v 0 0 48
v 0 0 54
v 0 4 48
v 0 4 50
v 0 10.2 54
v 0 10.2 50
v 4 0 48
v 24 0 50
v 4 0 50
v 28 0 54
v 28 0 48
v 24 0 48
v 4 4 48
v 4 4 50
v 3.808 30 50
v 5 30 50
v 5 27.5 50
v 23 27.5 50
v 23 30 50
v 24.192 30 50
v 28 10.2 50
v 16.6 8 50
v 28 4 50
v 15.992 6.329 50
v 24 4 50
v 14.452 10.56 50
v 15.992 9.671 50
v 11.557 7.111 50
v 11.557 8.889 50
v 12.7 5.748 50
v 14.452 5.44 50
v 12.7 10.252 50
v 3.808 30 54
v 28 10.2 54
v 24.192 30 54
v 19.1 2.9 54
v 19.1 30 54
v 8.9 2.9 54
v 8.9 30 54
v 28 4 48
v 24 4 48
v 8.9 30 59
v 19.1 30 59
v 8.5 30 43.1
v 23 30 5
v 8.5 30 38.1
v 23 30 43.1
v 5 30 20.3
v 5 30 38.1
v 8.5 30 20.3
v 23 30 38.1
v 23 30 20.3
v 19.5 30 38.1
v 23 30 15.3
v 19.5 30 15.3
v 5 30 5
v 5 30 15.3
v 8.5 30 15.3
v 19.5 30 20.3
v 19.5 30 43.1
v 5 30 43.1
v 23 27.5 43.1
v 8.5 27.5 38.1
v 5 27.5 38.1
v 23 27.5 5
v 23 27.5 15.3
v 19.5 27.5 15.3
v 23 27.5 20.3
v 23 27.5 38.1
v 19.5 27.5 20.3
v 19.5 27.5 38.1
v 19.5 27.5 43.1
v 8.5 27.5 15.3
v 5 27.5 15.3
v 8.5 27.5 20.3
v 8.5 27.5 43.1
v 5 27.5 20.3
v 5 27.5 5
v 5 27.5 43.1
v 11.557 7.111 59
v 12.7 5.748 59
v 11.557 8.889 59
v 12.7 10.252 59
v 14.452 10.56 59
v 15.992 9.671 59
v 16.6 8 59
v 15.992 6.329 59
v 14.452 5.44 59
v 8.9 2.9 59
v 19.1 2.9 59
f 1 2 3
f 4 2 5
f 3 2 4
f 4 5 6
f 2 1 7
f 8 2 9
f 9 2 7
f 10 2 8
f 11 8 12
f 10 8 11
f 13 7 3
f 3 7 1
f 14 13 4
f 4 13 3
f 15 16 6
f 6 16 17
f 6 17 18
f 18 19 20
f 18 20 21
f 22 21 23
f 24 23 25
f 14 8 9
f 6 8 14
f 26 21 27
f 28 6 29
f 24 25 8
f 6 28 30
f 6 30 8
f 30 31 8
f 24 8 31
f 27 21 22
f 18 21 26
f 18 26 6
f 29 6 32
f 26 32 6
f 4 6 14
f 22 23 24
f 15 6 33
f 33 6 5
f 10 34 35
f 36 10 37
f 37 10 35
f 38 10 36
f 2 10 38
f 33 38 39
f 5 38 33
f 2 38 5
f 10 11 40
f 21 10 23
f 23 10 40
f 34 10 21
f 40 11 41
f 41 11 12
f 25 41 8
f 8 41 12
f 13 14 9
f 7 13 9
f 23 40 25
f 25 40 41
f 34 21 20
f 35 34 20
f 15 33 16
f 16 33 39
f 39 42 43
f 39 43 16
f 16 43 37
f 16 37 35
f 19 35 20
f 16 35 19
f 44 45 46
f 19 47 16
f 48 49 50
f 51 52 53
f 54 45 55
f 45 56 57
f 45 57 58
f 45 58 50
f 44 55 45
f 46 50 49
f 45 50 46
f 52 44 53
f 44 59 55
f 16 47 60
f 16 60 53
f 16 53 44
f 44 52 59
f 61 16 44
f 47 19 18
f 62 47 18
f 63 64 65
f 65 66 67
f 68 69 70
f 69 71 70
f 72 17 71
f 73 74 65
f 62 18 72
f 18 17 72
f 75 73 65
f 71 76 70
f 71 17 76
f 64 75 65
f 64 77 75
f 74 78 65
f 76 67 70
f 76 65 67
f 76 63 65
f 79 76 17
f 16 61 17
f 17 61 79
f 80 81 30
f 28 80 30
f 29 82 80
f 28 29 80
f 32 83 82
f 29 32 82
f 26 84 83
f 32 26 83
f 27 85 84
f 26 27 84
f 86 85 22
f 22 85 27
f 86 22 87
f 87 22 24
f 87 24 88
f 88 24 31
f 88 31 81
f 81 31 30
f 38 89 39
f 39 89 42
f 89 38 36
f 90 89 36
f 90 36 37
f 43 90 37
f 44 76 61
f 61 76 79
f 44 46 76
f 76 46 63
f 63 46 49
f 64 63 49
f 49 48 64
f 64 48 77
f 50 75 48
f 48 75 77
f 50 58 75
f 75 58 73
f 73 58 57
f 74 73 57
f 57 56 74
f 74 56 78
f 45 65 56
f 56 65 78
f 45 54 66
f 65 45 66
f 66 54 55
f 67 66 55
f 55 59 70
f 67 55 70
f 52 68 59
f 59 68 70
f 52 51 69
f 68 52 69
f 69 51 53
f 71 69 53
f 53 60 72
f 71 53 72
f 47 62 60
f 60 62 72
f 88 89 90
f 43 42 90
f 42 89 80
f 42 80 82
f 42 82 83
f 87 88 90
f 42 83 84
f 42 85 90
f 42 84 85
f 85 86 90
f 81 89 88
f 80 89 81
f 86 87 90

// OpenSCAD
l = 23.5;
b1 = 28;
db1 = 20;

h = 50;
r1 = 2.5;
r2 = 2.6;
t = 2;

dh1=9.4;
dh2=32.2;
db2=16;

d1 = 2.5;
d2 = 4;

df = 4;
dl = l+d1;

b2 = 18;

le=5;

module triangle(w, b, h) {
	polyhedron(
		points=[
			[0,0,0], [w,0,0], [0,b,0], [w,b,0],
			[0,0,h], [w,0,h]
		],
		triangles=[
			[0,1,2], [2,1,3],
			[1,0,4], [5,1,4],
			[0,2,4], [3,1,5],
			[2,3,4], [3,5,4]
		]);
}

translate([b1/2,d2+df,h+d2])
difference() {
	difference() {
		translate([0,(r2+d1+l+d1-df)/2-r2-d1,le/2])
		cube(size=[2*(r2+d1),r2+d1+l+d1-df,le],center=true);
		cylinder(h=le,r=r2);
	}
}

difference() {
	cube(size=[b1,l+d1+d2,h+d2]);
	cube(size=[b1,l,h-t]);
	translate([0,d2,0])
		cube(size=[b1,l,h]);
	translate([(b1-db1)/2,0,h-t])
		cube(size=[db1,d2,t]);
	translate([0,l-dl+d1+d2,0])
		cube(size=[(b1-b2)/2,dl,h]);
	translate([b2+b1/2-b2/2,l-dl+d1+d2,0])
		cube(size=[(b1-b2)/2,dl,h]);
	translate([b1/2,d2+df,h])
		cylinder(h=d2+le,r=r2);

	translate([(b1+b2)/2+(b1-b2)/2+1,l+d2+d1+1,h+d2+.05])
	rotate([180,90,0])
		triangle(d2*1.1,l+d1,(b1-b2)/2);

	translate([-1,l+d2+d1+1,h])
	rotate([180,-90,0])
		triangle(d2*1.1,l+d1,(b1-b2)/2);

	translate([b1/2-db2/2,l+d2+d1/2,h-dh1])
		cube(size=[2*r1,d1,2*r1], center=true);
	translate([b1/2+db2/2,l+d2+d1/2,h-dh1])
		cube(size=[2*r1,d1,2*r1], center=true);
	translate([b1/2-db2/2,l+d2+d1/2,h-dh2])
		cube(size=[2*r1,d1,2*r1], center=true);
	translate([b1/2+db2/2,l+d2+d1/2,h-dh2])
		cube(size=[2*r1,d1,2*r1], center=true);

	cube(size=[b1,l+d1+d2,2*r1]);
}
